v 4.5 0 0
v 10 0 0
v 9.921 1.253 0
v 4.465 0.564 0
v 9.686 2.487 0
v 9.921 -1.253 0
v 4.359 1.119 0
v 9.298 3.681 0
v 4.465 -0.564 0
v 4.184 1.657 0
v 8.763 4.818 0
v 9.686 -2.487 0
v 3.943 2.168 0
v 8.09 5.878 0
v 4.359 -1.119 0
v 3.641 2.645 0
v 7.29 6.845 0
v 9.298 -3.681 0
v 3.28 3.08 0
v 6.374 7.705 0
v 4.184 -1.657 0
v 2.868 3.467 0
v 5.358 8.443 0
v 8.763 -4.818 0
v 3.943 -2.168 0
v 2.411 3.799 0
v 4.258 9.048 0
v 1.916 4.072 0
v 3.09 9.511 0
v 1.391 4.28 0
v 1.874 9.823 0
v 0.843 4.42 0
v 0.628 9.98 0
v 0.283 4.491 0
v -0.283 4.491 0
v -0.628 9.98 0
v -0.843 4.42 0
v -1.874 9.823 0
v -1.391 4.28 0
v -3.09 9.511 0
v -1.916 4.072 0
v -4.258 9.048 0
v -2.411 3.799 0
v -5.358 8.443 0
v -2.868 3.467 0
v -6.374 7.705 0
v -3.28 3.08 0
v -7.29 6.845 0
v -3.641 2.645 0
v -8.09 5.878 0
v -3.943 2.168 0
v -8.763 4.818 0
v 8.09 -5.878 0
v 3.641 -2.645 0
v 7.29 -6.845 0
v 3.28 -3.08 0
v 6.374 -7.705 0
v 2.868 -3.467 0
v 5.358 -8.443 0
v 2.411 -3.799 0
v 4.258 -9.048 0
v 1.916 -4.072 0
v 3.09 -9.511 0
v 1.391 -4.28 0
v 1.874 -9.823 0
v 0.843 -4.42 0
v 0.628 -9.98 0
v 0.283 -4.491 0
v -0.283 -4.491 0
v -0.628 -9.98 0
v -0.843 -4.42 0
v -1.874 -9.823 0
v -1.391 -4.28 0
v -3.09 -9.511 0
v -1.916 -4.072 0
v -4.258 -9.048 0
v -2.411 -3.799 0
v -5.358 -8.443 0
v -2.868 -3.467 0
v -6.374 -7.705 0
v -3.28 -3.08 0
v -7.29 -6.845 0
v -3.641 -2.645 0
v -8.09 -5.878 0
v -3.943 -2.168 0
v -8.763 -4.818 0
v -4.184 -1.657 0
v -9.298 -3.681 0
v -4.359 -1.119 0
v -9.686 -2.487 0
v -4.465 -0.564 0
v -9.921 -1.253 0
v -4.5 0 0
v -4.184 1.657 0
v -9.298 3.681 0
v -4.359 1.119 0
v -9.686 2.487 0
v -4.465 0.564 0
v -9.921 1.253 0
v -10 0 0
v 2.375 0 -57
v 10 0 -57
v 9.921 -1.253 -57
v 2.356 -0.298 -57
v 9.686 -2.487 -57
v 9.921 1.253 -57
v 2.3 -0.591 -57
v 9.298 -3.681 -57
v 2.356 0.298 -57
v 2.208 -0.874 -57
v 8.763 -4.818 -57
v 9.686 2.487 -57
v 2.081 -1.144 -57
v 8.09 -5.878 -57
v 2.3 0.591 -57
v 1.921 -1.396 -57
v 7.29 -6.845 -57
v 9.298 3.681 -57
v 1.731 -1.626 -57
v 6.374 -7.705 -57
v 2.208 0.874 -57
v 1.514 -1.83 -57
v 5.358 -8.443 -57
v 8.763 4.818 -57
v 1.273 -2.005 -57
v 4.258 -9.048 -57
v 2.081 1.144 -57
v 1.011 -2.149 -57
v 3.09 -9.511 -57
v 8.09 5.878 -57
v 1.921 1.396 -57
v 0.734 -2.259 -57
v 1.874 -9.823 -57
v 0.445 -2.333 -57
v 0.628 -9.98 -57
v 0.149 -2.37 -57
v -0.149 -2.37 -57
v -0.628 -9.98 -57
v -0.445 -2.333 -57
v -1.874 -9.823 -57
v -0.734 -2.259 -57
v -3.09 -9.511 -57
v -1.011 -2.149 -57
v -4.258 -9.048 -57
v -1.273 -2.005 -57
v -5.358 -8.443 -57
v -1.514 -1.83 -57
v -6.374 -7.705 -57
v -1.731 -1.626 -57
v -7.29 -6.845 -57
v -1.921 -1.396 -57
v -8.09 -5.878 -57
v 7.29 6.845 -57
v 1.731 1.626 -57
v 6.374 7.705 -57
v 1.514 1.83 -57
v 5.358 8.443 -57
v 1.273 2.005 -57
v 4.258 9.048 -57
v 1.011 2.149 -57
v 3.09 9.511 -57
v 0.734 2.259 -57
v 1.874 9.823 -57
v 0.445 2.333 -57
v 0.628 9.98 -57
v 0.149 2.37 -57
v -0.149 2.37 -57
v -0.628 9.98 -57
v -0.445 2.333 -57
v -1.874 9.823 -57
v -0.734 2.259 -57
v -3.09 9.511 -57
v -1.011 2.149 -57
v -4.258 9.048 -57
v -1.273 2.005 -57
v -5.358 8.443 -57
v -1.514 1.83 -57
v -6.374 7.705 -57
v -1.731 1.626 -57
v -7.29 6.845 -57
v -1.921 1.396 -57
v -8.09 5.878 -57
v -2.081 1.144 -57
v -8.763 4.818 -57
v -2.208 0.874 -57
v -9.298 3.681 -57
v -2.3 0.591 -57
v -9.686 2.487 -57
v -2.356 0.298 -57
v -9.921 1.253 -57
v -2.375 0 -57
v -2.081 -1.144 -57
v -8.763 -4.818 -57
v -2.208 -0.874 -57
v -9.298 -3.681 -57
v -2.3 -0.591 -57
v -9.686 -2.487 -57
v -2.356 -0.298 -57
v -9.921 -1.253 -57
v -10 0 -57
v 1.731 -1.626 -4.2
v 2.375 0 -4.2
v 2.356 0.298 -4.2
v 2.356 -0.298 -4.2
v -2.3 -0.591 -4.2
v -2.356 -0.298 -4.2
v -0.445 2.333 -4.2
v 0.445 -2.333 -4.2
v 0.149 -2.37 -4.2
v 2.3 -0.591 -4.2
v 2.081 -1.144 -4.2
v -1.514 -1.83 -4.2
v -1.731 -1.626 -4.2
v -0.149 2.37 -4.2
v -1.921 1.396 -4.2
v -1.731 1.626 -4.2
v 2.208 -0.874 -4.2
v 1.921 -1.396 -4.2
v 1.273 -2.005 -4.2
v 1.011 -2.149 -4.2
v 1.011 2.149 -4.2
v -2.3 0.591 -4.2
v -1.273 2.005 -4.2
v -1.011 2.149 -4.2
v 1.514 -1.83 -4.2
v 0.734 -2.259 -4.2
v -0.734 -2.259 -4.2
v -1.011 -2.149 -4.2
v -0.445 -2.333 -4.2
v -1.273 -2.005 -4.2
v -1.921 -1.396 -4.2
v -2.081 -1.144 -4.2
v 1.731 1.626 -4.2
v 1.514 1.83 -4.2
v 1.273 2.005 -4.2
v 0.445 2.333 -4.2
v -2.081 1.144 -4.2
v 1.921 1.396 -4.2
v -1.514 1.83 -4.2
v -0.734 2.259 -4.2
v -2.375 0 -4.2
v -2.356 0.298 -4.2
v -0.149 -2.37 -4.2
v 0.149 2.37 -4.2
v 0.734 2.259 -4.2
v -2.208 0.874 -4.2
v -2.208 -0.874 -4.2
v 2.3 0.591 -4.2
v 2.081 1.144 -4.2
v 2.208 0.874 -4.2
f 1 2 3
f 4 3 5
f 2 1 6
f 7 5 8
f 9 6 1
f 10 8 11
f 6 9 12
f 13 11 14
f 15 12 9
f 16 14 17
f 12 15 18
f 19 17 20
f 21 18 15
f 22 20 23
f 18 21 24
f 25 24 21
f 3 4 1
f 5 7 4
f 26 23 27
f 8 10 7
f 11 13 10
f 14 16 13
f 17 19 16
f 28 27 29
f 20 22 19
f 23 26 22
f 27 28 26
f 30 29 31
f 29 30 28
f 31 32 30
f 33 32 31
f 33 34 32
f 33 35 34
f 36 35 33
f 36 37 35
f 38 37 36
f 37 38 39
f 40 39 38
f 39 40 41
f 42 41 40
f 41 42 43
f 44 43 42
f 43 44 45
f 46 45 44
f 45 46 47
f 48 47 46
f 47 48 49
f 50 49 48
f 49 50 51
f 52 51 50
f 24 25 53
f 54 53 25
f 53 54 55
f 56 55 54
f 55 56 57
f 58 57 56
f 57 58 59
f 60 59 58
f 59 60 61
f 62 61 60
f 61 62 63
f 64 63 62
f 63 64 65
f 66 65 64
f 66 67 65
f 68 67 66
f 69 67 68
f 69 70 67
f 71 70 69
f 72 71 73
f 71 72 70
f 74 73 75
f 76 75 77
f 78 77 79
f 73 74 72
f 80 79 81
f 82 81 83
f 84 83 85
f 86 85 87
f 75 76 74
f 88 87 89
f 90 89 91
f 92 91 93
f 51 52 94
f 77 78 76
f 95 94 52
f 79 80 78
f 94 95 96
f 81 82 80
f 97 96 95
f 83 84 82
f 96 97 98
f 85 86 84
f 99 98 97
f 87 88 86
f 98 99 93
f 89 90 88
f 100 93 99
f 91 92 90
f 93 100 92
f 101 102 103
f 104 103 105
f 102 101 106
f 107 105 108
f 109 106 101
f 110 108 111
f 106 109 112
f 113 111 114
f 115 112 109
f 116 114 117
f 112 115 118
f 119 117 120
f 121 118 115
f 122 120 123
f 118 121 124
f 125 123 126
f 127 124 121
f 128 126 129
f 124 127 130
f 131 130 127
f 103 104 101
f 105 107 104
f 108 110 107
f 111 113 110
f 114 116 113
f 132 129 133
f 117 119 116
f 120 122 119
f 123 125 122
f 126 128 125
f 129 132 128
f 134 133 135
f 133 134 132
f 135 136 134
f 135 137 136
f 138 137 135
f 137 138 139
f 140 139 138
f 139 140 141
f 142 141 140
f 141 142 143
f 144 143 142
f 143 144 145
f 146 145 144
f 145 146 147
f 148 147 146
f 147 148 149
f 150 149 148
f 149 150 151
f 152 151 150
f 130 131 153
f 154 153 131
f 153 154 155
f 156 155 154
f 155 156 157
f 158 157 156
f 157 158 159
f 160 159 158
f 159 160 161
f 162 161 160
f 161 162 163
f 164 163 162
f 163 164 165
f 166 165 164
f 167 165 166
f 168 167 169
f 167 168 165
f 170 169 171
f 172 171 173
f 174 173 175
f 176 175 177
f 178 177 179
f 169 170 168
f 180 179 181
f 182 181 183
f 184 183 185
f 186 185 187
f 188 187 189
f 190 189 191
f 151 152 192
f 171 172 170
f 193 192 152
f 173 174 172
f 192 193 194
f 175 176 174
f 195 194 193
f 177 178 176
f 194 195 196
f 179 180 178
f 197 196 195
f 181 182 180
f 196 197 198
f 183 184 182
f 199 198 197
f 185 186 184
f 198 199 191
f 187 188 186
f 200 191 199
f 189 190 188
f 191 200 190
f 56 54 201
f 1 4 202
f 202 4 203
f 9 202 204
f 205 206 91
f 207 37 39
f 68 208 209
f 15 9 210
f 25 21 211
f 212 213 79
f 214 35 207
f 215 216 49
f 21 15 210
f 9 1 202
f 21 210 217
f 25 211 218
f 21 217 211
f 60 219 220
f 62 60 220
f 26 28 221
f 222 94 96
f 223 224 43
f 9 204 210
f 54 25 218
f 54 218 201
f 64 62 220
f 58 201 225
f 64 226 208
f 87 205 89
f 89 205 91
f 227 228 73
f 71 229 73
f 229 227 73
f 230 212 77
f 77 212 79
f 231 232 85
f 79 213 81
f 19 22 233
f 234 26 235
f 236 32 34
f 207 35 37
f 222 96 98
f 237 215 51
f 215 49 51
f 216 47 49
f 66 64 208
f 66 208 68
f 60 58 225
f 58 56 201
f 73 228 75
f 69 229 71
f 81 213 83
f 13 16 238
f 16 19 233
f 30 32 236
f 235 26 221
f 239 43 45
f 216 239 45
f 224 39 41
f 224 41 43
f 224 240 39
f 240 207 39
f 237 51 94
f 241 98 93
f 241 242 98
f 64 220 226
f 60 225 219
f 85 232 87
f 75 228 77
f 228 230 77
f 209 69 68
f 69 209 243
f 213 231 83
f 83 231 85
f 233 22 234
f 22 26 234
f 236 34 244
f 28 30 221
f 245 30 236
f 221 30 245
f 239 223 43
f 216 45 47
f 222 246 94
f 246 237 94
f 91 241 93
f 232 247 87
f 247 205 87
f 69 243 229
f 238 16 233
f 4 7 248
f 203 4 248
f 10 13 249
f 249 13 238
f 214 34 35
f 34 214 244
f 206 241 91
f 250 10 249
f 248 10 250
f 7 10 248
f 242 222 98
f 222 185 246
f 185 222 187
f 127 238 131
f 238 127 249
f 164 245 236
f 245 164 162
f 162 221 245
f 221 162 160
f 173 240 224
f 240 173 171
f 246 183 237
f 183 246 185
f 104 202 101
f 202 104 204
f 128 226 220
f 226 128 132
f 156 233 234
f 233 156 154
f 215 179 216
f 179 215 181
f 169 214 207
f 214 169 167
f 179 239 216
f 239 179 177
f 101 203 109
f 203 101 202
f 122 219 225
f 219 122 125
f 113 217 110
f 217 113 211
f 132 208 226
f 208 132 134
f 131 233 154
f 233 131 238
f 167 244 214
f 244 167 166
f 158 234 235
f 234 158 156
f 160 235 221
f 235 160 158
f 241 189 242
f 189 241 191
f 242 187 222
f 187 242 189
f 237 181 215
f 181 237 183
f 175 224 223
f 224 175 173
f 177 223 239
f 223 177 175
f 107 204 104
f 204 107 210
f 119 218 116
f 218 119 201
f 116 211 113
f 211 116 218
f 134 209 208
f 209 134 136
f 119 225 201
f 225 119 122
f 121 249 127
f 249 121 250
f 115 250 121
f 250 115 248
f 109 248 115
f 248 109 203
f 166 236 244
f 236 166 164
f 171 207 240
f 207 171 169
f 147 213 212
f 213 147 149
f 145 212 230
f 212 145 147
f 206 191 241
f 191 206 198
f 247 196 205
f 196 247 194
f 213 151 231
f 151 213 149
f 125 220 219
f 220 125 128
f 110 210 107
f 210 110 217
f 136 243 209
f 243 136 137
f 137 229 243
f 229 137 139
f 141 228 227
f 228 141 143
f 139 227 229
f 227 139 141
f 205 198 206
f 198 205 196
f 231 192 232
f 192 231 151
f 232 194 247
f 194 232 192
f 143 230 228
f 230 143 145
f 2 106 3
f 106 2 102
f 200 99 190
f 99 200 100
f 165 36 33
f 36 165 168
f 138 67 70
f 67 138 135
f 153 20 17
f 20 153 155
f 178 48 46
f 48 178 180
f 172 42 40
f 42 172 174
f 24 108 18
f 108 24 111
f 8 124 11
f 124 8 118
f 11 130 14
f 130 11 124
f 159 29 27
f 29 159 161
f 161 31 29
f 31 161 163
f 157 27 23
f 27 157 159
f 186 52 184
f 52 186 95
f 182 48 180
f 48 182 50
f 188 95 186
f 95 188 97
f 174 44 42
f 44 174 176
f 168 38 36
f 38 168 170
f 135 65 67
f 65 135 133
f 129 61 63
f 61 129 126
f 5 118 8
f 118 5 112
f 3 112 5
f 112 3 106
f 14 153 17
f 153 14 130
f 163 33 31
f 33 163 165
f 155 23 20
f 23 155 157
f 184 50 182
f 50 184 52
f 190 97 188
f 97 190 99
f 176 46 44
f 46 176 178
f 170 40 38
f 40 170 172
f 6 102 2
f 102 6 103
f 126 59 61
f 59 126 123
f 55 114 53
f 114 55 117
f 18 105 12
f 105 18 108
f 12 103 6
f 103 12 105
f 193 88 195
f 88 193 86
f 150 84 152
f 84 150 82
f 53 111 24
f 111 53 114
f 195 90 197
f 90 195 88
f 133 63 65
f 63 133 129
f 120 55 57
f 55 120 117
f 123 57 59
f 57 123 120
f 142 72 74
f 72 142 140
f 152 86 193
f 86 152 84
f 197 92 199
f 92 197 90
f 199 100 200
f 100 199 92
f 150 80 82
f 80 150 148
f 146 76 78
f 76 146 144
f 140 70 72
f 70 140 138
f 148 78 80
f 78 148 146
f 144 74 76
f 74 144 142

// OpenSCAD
$fn = 50;


difference() {
	union() {
		translate(v = [0, 0, -57.0000000000]) {
			cylinder(h = 57, r = 10.0000000000);
		}
	}
	union() {
		translate(v = [0, 0, 0]) {
			rotate(a = [0, 0, 0]) {
				difference() {
					union() {
						#translate(v = [0, 0, -57.0000000000]) {
							cylinder(h = 57, r = 2.2500000000);
						}
						#translate(v = [0, 0, -4.2000000000]) {
							cylinder(h = 4.2000000000, r1 = 2.3750000000, r2 = 4.5000000000);
						}
						#translate(v = [0, 0, -57.0000000000]) {
							cylinder(h = 57, r = 2.3750000000);
						}
						#translate(v = [0, 0, -57.0000000000]) {
							cylinder(h = 57, r = 2.2500000000);
						}
					}
					union();
				}
			}
		}
	}
}
